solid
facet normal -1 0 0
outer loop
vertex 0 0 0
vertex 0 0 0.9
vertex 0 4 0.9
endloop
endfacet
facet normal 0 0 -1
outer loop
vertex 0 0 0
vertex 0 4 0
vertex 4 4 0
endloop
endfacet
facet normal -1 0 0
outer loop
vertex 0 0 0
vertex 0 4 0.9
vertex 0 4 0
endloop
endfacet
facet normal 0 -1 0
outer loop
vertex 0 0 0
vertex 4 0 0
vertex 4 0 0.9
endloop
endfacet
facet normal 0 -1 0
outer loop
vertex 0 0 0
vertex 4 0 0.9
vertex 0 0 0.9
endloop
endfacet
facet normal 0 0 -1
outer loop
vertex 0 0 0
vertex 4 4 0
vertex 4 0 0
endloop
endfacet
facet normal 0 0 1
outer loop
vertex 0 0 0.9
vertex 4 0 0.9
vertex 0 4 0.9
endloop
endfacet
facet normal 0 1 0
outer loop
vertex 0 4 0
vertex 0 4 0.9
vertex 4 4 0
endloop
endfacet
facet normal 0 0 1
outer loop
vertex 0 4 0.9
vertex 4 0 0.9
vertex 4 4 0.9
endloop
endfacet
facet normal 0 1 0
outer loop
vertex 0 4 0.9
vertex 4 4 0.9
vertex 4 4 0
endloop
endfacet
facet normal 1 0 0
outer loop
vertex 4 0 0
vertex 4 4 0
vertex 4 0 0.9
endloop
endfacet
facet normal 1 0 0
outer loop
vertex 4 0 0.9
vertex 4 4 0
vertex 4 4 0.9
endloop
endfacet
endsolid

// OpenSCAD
/* Warning, this is a very basic generator with a lot of approximation 
input data : [VQFN, RJB, 4x4x0.9mm, 24, , A, C04-21384A]
generated by com.zoubworld.electronics.cad.model3d.Basic
Date : Sun Feb 15 10:50:49 CET 2026
*/

//body
color("black")
translate([0,0,0])
cube([4.0,4.0,0.9], center=false);
